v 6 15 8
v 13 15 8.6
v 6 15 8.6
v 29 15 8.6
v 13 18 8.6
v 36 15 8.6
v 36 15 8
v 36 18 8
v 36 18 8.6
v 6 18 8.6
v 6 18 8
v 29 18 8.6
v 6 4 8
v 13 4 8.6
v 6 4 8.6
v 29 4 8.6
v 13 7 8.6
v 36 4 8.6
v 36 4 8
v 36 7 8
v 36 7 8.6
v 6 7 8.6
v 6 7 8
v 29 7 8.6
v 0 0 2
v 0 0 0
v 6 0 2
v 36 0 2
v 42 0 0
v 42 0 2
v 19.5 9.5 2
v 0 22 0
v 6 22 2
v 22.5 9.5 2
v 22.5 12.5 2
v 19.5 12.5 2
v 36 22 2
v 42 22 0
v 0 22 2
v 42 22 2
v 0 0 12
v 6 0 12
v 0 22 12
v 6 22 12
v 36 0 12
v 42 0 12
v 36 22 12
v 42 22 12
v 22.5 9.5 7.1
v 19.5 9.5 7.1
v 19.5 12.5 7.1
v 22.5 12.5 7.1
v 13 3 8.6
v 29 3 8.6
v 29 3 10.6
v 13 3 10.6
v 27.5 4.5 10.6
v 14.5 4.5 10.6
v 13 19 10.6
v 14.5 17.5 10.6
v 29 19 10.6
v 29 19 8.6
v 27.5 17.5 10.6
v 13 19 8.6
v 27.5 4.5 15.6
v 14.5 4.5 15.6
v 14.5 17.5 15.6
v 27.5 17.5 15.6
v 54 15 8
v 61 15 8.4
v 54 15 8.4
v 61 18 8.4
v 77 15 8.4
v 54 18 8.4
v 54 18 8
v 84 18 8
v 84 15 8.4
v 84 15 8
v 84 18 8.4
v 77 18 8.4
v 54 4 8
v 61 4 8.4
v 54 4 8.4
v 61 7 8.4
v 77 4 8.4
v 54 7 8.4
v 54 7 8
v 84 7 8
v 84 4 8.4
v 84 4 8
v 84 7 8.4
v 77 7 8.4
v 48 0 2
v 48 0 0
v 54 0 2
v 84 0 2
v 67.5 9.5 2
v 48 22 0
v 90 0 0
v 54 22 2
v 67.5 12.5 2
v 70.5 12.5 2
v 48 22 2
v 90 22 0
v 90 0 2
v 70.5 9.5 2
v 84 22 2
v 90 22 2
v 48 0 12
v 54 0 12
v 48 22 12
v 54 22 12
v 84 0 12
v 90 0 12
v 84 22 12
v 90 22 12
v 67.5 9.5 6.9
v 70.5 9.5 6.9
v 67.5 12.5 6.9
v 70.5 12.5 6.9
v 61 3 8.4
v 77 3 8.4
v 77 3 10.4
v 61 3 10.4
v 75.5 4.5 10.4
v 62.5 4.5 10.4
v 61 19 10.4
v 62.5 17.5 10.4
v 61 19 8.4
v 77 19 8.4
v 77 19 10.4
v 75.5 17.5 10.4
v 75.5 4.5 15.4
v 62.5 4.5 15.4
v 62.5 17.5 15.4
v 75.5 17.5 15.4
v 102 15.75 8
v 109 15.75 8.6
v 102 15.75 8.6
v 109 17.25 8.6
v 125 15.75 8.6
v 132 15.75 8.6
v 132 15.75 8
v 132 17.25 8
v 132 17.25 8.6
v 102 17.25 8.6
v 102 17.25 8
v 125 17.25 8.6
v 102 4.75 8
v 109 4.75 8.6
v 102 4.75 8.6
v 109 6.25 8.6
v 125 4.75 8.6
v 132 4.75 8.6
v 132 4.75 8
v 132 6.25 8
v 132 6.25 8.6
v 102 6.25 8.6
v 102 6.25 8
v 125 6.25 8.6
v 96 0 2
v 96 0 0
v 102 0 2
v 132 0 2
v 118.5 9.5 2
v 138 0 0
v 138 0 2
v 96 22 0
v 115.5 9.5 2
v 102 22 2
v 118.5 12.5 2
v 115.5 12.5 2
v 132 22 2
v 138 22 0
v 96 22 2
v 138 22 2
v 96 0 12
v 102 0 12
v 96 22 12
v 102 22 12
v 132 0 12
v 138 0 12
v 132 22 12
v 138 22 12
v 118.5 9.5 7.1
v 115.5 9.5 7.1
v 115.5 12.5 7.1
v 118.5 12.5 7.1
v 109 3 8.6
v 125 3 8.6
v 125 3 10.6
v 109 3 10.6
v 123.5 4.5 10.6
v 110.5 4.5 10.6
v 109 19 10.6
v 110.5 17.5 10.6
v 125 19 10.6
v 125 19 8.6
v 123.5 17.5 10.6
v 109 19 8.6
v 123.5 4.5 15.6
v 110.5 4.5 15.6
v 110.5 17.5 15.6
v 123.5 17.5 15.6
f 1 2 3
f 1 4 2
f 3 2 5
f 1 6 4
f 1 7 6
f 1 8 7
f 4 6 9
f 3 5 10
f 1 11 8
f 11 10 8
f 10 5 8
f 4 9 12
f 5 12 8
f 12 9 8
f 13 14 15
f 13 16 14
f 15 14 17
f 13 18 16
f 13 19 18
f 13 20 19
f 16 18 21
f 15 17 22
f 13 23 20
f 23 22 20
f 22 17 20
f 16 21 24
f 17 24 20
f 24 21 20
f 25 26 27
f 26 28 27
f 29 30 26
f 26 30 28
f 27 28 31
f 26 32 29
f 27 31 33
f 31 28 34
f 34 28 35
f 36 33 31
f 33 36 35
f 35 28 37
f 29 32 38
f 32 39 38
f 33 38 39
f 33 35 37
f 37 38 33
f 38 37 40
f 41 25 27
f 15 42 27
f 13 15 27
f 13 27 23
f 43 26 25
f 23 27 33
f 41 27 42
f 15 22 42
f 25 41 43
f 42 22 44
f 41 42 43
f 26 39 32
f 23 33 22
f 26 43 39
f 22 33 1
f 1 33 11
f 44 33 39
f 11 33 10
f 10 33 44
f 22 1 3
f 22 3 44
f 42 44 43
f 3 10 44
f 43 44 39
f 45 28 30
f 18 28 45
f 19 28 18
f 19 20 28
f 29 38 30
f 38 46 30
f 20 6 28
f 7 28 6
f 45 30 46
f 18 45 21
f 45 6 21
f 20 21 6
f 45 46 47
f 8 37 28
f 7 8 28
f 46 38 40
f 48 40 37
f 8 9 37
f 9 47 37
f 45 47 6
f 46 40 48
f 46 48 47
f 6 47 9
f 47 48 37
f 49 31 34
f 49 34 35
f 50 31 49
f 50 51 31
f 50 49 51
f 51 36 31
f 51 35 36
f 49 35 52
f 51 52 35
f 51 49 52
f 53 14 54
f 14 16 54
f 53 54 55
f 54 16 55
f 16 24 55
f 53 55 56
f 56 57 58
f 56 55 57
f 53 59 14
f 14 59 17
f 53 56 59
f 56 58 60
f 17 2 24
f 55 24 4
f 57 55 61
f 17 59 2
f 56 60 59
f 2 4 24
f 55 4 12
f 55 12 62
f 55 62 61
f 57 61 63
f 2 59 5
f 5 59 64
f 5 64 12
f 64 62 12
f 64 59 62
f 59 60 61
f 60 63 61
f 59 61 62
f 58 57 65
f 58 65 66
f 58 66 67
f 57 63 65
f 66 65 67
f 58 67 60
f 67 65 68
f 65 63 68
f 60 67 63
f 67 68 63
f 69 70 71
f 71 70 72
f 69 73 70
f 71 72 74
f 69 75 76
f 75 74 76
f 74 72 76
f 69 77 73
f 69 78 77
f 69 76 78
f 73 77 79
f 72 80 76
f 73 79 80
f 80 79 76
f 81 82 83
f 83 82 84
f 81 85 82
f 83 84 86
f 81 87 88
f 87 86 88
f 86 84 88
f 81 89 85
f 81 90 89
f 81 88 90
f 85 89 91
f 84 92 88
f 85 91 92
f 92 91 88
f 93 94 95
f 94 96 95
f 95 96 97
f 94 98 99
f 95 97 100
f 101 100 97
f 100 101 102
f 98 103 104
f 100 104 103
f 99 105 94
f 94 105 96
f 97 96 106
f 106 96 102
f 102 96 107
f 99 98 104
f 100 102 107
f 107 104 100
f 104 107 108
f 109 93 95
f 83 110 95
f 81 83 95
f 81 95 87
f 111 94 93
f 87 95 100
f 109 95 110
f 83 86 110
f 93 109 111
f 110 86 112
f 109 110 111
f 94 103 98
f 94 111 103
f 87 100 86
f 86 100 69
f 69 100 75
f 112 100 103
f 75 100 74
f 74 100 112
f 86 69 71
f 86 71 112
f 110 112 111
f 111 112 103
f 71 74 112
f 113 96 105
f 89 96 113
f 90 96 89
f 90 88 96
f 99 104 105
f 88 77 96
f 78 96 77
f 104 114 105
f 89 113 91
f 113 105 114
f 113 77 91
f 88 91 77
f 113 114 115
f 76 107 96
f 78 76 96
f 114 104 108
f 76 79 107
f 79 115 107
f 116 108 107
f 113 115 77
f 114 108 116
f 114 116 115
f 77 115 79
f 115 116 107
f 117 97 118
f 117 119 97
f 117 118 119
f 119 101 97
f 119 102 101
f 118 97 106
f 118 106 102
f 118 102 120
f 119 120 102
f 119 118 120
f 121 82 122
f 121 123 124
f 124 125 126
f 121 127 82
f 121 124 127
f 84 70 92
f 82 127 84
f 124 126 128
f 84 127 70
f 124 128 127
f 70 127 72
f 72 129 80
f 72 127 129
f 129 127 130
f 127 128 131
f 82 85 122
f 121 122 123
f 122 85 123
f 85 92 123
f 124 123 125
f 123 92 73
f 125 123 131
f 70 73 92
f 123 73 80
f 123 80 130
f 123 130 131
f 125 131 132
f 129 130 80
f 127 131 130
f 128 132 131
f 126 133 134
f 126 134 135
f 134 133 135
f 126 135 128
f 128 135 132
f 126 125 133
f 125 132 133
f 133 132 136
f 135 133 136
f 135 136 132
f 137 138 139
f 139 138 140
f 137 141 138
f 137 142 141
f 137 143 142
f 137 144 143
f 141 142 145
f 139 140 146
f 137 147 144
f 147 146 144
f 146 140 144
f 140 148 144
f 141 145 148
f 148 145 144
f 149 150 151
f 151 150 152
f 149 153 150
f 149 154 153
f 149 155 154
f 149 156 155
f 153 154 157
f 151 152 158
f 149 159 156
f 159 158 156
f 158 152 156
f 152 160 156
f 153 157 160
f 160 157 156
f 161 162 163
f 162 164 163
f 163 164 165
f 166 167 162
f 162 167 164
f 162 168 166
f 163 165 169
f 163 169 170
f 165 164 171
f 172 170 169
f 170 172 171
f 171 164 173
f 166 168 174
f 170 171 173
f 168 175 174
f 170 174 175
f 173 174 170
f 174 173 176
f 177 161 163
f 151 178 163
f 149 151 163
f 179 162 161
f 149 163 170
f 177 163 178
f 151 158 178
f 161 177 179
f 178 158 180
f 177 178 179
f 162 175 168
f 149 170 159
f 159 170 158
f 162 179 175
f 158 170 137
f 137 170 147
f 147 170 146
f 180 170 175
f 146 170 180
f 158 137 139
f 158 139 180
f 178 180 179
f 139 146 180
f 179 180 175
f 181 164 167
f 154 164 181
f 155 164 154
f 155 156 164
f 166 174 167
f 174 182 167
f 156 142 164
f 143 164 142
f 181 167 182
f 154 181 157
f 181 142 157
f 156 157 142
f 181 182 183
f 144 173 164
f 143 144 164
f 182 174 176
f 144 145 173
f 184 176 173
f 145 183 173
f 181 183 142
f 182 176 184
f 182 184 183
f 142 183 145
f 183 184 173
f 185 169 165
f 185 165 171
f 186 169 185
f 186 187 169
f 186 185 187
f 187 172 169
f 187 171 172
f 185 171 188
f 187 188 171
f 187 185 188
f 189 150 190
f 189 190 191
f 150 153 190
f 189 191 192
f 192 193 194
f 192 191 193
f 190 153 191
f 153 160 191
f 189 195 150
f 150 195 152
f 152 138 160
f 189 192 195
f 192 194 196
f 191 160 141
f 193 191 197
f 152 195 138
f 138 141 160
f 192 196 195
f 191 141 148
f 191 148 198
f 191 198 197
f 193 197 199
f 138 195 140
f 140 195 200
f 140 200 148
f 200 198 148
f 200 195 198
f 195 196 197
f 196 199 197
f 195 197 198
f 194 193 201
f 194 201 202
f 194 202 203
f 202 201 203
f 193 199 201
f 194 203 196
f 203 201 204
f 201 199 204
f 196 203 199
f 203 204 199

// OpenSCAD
/* ==========================================================================
   单键柔性机构测试片 —— 一体打印，无组装，无支撑
   ==========================================================================
   目的：在做整机之前，先验证「桥式柔性梁」这个机构能不能成立。

   核心思路（解决打印与运动的矛盾）：
     柔性梁两端都搭在实体墙上，中间悬空。
       · 打印时 —— 它是一段桥，两端有支撑，桥接没问题
       · 受力时 —— 它是一根两端固定的梁，中间能下沉、能回弹
     这样既不用支撑，又能动。

   一片上放三个变体，一次打印验证三种刚度，比打三次省时间。

   力学依据（两端固定梁，中央集中载荷）：
     刚度      k = 192·E·I / L³        I = b·t³/12
     最大应变  ε = 12·t·δ / L²         （应变在两端的固定处最大）
   导出值会打在控制台上，出图时对照。

   打印要求：
     · 层高 0.2mm（梁厚必须是层高的整数倍，否则实际厚度不由你控制）
     · 支撑：关闭
     · 摆放：平放，和脚本朝向一致，不要旋转
   ========================================================================== */

// ---------------------------- 可调参数 ----------------------------
SPAN    = 30;     // 自由跨距 mm —— 桥接长度，也是柔性梁的有效长度
WALL_T  = 6;      // 两端墙厚度 mm
WALL_H  = 12;     // 墙高 mm
UNIT_W  = 22;     // 单片宽度 mm
GAP     = 6;      // 变体之间的间隔 mm
FLOOR_T = 2;      // 底板厚度 mm —— 让止挡柱有根，否则它会变成散件

BEAM_Y  = 5.5;    // 两根梁的中心距中轴 mm
BEAM_Z  = 8;      // 梁底面高度 mm（下方全空，靠桥接打印）

PLAT    = 16;     // 浮动平台边长 mm
PLAT_T  = 2;      // 平台厚度 mm
KEY     = 13;     // 键帽边长 mm
KEY_H   = 5;      // 键帽高度 mm

TRAVEL  = 1.5;    // 设计行程 mm —— 由止挡柱限制，防止按压过度把梁压坏
STOP    = 3;      // 止挡柱截面 mm

CUT     = 0;      // 1 = 沿中轴剖开，用于展示内部机构（只影响预览，不影响出图）

E_PLA   = 3500;   // PLA 弹性模量 MPa

// [梁厚 t, 梁宽 b]
VARIANTS = [
    [0.6, 3.0],   // A 基准
    [0.4, 3.0],   // B 更薄 -> 最软
    [0.6, 1.5],   // C 更窄 -> 中等
];
LABELS = ["A", "B", "C"];

LEN = 2 * WALL_T + SPAN;
TOTAL_LEN = len(VARIANTS) * LEN + (len(VARIANTS) - 1) * GAP;

$fa = 2;
$fs = 0.2;

// ---------------------------- 工具 ----------------------------
module box(x0, y0, z0, x1, y1, z1) {
    translate([x0, y0, z0]) cube([x1 - x0, y1 - y0, z1 - z0]);
}

// ---------------------------- 一个变体 ----------------------------
module unit(bt, bw) {
    // 底板：本身不参与机构，只负责把止挡柱连成一体
    // 梁在 z=BEAM_Z 处下沉最多 TRAVEL，与底板顶面(z=FLOOR_T)之间留有大余量
    box(0, 0, 0, LEN, UNIT_W, FLOOR_T);

    // 墙体
    box(0, 0, 0, WALL_T, UNIT_W, WALL_H);
    box(WALL_T + SPAN, 0, 0, LEN, UNIT_W, WALL_H);

    // 两根柔性梁：两端搭在墙上，中间悬空 -> 打印时是桥，受力时是固定梁
    for (s = [1, -1]) {
        box(WALL_T, UNIT_W / 2 + s * BEAM_Y - bw / 2, BEAM_Z,
            WALL_T + SPAN, UNIT_W / 2 + s * BEAM_Y + bw / 2, BEAM_Z + bt);
    }

    // 止挡柱：从底板上长出来，柱顶与平台底面之间正好留出 TRAVEL
    // 这样按压到底会被硬性挡住，梁的应变不会超过设计值
    box(WALL_T + SPAN / 2 - STOP / 2, UNIT_W / 2 - STOP / 2, FLOOR_T,
        WALL_T + SPAN / 2 + STOP / 2, UNIT_W / 2 + STOP / 2, BEAM_Z + bt - TRAVEL);

    // 浮动平台：坐在两根梁上，两梁之间跨 9mm，桥接可打
    box(WALL_T + SPAN / 2 - PLAT / 2, UNIT_W / 2 - PLAT / 2, BEAM_Z + bt,
        WALL_T + SPAN / 2 + PLAT / 2, UNIT_W / 2 + PLAT / 2, BEAM_Z + bt + PLAT_T);

    // 键帽
    box(WALL_T + SPAN / 2 - KEY / 2, UNIT_W / 2 - KEY / 2, BEAM_Z + bt + PLAT_T,
        WALL_T + SPAN / 2 + KEY / 2, UNIT_W / 2 + KEY / 2, BEAM_Z + bt + PLAT_T + KEY_H);
}

// ---------------------------- 总装 ----------------------------
module all() {
    for (i = [0 : len(VARIANTS) - 1]) {
        translate([i * (LEN + GAP), 0, 0])
            unit(VARIANTS[i][0], VARIANTS[i][1]);
    }
}

if (CUT == 1) {
    // 沿中轴剖开，露出梁、平台、止挡柱的相互关系
    intersection() {
        all();
        box(-1, -1, -1, TOTAL_LEN + 1, UNIT_W / 2, 100);
    }
} else {
    all();
}

// ---------------------------- 力学输出 ----------------------------
echo("=== 设计参数 ===");
echo(SPAN = SPAN, TRAVEL = TRAVEL, BEAM_Z = BEAM_Z);
echo(TOTAL_LEN = TOTAL_LEN, TOTAL_W = UNIT_W);
echo("");
echo("=== 各变体力学（E_PLA = 3500 MPa）===");
for (i = [0 : len(VARIANTS) - 1]) {
    bt = VARIANTS[i][0];
    bw = VARIANTS[i][1];
    I  = bw * pow(bt, 3) / 12;
    kb = 192 * E_PLA * I / pow(SPAN, 3);   // 单根梁刚度
    kt = 2 * kb;                            // 两根梁并联
    F  = kt * TRAVEL;                       // 压到底需要的力
    ep = 12 * bt * TRAVEL / pow(SPAN, 2);   // 最大应变
    // 达到 1.5% 应变（PLA 反复弯曲的安全上限）对应的行程
    dmax = 0.015 * pow(SPAN, 2) / (12 * bt);
    echo(str("变体 ", LABELS[i],
             "  t=", bt, "mm b=", bw, "mm",
             "  | 厚度层数=", bt / 0.2,
             "  | k=", kt, " N/mm",
             "  | 压到底需 ", F, " N",
             "  | 应变@", TRAVEL, "mm = ", ep * 100, "%",
             "  | 应变达1.5%时行程 ", dmax, "mm"));
}
